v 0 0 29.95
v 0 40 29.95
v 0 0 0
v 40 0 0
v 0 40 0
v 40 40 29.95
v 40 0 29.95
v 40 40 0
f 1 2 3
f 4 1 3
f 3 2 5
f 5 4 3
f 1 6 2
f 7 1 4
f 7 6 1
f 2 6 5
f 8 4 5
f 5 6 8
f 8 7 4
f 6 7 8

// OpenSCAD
// EM flow cube — single-wall extrusion-multiplier test.
// Solid on purpose: the slicer preset (slicer/em-flowcube-presets.ini)
// hollows it to one external perimeter.
// Height 29.95 sits on the 0.2 + n*0.25 layer grid (n = 119), so the
// modeled height is the printed height exactly.
// Render: openscad -o em_flow_cube.stl em_flow_cube.scad
cube([40, 40, 29.95], center = false);
